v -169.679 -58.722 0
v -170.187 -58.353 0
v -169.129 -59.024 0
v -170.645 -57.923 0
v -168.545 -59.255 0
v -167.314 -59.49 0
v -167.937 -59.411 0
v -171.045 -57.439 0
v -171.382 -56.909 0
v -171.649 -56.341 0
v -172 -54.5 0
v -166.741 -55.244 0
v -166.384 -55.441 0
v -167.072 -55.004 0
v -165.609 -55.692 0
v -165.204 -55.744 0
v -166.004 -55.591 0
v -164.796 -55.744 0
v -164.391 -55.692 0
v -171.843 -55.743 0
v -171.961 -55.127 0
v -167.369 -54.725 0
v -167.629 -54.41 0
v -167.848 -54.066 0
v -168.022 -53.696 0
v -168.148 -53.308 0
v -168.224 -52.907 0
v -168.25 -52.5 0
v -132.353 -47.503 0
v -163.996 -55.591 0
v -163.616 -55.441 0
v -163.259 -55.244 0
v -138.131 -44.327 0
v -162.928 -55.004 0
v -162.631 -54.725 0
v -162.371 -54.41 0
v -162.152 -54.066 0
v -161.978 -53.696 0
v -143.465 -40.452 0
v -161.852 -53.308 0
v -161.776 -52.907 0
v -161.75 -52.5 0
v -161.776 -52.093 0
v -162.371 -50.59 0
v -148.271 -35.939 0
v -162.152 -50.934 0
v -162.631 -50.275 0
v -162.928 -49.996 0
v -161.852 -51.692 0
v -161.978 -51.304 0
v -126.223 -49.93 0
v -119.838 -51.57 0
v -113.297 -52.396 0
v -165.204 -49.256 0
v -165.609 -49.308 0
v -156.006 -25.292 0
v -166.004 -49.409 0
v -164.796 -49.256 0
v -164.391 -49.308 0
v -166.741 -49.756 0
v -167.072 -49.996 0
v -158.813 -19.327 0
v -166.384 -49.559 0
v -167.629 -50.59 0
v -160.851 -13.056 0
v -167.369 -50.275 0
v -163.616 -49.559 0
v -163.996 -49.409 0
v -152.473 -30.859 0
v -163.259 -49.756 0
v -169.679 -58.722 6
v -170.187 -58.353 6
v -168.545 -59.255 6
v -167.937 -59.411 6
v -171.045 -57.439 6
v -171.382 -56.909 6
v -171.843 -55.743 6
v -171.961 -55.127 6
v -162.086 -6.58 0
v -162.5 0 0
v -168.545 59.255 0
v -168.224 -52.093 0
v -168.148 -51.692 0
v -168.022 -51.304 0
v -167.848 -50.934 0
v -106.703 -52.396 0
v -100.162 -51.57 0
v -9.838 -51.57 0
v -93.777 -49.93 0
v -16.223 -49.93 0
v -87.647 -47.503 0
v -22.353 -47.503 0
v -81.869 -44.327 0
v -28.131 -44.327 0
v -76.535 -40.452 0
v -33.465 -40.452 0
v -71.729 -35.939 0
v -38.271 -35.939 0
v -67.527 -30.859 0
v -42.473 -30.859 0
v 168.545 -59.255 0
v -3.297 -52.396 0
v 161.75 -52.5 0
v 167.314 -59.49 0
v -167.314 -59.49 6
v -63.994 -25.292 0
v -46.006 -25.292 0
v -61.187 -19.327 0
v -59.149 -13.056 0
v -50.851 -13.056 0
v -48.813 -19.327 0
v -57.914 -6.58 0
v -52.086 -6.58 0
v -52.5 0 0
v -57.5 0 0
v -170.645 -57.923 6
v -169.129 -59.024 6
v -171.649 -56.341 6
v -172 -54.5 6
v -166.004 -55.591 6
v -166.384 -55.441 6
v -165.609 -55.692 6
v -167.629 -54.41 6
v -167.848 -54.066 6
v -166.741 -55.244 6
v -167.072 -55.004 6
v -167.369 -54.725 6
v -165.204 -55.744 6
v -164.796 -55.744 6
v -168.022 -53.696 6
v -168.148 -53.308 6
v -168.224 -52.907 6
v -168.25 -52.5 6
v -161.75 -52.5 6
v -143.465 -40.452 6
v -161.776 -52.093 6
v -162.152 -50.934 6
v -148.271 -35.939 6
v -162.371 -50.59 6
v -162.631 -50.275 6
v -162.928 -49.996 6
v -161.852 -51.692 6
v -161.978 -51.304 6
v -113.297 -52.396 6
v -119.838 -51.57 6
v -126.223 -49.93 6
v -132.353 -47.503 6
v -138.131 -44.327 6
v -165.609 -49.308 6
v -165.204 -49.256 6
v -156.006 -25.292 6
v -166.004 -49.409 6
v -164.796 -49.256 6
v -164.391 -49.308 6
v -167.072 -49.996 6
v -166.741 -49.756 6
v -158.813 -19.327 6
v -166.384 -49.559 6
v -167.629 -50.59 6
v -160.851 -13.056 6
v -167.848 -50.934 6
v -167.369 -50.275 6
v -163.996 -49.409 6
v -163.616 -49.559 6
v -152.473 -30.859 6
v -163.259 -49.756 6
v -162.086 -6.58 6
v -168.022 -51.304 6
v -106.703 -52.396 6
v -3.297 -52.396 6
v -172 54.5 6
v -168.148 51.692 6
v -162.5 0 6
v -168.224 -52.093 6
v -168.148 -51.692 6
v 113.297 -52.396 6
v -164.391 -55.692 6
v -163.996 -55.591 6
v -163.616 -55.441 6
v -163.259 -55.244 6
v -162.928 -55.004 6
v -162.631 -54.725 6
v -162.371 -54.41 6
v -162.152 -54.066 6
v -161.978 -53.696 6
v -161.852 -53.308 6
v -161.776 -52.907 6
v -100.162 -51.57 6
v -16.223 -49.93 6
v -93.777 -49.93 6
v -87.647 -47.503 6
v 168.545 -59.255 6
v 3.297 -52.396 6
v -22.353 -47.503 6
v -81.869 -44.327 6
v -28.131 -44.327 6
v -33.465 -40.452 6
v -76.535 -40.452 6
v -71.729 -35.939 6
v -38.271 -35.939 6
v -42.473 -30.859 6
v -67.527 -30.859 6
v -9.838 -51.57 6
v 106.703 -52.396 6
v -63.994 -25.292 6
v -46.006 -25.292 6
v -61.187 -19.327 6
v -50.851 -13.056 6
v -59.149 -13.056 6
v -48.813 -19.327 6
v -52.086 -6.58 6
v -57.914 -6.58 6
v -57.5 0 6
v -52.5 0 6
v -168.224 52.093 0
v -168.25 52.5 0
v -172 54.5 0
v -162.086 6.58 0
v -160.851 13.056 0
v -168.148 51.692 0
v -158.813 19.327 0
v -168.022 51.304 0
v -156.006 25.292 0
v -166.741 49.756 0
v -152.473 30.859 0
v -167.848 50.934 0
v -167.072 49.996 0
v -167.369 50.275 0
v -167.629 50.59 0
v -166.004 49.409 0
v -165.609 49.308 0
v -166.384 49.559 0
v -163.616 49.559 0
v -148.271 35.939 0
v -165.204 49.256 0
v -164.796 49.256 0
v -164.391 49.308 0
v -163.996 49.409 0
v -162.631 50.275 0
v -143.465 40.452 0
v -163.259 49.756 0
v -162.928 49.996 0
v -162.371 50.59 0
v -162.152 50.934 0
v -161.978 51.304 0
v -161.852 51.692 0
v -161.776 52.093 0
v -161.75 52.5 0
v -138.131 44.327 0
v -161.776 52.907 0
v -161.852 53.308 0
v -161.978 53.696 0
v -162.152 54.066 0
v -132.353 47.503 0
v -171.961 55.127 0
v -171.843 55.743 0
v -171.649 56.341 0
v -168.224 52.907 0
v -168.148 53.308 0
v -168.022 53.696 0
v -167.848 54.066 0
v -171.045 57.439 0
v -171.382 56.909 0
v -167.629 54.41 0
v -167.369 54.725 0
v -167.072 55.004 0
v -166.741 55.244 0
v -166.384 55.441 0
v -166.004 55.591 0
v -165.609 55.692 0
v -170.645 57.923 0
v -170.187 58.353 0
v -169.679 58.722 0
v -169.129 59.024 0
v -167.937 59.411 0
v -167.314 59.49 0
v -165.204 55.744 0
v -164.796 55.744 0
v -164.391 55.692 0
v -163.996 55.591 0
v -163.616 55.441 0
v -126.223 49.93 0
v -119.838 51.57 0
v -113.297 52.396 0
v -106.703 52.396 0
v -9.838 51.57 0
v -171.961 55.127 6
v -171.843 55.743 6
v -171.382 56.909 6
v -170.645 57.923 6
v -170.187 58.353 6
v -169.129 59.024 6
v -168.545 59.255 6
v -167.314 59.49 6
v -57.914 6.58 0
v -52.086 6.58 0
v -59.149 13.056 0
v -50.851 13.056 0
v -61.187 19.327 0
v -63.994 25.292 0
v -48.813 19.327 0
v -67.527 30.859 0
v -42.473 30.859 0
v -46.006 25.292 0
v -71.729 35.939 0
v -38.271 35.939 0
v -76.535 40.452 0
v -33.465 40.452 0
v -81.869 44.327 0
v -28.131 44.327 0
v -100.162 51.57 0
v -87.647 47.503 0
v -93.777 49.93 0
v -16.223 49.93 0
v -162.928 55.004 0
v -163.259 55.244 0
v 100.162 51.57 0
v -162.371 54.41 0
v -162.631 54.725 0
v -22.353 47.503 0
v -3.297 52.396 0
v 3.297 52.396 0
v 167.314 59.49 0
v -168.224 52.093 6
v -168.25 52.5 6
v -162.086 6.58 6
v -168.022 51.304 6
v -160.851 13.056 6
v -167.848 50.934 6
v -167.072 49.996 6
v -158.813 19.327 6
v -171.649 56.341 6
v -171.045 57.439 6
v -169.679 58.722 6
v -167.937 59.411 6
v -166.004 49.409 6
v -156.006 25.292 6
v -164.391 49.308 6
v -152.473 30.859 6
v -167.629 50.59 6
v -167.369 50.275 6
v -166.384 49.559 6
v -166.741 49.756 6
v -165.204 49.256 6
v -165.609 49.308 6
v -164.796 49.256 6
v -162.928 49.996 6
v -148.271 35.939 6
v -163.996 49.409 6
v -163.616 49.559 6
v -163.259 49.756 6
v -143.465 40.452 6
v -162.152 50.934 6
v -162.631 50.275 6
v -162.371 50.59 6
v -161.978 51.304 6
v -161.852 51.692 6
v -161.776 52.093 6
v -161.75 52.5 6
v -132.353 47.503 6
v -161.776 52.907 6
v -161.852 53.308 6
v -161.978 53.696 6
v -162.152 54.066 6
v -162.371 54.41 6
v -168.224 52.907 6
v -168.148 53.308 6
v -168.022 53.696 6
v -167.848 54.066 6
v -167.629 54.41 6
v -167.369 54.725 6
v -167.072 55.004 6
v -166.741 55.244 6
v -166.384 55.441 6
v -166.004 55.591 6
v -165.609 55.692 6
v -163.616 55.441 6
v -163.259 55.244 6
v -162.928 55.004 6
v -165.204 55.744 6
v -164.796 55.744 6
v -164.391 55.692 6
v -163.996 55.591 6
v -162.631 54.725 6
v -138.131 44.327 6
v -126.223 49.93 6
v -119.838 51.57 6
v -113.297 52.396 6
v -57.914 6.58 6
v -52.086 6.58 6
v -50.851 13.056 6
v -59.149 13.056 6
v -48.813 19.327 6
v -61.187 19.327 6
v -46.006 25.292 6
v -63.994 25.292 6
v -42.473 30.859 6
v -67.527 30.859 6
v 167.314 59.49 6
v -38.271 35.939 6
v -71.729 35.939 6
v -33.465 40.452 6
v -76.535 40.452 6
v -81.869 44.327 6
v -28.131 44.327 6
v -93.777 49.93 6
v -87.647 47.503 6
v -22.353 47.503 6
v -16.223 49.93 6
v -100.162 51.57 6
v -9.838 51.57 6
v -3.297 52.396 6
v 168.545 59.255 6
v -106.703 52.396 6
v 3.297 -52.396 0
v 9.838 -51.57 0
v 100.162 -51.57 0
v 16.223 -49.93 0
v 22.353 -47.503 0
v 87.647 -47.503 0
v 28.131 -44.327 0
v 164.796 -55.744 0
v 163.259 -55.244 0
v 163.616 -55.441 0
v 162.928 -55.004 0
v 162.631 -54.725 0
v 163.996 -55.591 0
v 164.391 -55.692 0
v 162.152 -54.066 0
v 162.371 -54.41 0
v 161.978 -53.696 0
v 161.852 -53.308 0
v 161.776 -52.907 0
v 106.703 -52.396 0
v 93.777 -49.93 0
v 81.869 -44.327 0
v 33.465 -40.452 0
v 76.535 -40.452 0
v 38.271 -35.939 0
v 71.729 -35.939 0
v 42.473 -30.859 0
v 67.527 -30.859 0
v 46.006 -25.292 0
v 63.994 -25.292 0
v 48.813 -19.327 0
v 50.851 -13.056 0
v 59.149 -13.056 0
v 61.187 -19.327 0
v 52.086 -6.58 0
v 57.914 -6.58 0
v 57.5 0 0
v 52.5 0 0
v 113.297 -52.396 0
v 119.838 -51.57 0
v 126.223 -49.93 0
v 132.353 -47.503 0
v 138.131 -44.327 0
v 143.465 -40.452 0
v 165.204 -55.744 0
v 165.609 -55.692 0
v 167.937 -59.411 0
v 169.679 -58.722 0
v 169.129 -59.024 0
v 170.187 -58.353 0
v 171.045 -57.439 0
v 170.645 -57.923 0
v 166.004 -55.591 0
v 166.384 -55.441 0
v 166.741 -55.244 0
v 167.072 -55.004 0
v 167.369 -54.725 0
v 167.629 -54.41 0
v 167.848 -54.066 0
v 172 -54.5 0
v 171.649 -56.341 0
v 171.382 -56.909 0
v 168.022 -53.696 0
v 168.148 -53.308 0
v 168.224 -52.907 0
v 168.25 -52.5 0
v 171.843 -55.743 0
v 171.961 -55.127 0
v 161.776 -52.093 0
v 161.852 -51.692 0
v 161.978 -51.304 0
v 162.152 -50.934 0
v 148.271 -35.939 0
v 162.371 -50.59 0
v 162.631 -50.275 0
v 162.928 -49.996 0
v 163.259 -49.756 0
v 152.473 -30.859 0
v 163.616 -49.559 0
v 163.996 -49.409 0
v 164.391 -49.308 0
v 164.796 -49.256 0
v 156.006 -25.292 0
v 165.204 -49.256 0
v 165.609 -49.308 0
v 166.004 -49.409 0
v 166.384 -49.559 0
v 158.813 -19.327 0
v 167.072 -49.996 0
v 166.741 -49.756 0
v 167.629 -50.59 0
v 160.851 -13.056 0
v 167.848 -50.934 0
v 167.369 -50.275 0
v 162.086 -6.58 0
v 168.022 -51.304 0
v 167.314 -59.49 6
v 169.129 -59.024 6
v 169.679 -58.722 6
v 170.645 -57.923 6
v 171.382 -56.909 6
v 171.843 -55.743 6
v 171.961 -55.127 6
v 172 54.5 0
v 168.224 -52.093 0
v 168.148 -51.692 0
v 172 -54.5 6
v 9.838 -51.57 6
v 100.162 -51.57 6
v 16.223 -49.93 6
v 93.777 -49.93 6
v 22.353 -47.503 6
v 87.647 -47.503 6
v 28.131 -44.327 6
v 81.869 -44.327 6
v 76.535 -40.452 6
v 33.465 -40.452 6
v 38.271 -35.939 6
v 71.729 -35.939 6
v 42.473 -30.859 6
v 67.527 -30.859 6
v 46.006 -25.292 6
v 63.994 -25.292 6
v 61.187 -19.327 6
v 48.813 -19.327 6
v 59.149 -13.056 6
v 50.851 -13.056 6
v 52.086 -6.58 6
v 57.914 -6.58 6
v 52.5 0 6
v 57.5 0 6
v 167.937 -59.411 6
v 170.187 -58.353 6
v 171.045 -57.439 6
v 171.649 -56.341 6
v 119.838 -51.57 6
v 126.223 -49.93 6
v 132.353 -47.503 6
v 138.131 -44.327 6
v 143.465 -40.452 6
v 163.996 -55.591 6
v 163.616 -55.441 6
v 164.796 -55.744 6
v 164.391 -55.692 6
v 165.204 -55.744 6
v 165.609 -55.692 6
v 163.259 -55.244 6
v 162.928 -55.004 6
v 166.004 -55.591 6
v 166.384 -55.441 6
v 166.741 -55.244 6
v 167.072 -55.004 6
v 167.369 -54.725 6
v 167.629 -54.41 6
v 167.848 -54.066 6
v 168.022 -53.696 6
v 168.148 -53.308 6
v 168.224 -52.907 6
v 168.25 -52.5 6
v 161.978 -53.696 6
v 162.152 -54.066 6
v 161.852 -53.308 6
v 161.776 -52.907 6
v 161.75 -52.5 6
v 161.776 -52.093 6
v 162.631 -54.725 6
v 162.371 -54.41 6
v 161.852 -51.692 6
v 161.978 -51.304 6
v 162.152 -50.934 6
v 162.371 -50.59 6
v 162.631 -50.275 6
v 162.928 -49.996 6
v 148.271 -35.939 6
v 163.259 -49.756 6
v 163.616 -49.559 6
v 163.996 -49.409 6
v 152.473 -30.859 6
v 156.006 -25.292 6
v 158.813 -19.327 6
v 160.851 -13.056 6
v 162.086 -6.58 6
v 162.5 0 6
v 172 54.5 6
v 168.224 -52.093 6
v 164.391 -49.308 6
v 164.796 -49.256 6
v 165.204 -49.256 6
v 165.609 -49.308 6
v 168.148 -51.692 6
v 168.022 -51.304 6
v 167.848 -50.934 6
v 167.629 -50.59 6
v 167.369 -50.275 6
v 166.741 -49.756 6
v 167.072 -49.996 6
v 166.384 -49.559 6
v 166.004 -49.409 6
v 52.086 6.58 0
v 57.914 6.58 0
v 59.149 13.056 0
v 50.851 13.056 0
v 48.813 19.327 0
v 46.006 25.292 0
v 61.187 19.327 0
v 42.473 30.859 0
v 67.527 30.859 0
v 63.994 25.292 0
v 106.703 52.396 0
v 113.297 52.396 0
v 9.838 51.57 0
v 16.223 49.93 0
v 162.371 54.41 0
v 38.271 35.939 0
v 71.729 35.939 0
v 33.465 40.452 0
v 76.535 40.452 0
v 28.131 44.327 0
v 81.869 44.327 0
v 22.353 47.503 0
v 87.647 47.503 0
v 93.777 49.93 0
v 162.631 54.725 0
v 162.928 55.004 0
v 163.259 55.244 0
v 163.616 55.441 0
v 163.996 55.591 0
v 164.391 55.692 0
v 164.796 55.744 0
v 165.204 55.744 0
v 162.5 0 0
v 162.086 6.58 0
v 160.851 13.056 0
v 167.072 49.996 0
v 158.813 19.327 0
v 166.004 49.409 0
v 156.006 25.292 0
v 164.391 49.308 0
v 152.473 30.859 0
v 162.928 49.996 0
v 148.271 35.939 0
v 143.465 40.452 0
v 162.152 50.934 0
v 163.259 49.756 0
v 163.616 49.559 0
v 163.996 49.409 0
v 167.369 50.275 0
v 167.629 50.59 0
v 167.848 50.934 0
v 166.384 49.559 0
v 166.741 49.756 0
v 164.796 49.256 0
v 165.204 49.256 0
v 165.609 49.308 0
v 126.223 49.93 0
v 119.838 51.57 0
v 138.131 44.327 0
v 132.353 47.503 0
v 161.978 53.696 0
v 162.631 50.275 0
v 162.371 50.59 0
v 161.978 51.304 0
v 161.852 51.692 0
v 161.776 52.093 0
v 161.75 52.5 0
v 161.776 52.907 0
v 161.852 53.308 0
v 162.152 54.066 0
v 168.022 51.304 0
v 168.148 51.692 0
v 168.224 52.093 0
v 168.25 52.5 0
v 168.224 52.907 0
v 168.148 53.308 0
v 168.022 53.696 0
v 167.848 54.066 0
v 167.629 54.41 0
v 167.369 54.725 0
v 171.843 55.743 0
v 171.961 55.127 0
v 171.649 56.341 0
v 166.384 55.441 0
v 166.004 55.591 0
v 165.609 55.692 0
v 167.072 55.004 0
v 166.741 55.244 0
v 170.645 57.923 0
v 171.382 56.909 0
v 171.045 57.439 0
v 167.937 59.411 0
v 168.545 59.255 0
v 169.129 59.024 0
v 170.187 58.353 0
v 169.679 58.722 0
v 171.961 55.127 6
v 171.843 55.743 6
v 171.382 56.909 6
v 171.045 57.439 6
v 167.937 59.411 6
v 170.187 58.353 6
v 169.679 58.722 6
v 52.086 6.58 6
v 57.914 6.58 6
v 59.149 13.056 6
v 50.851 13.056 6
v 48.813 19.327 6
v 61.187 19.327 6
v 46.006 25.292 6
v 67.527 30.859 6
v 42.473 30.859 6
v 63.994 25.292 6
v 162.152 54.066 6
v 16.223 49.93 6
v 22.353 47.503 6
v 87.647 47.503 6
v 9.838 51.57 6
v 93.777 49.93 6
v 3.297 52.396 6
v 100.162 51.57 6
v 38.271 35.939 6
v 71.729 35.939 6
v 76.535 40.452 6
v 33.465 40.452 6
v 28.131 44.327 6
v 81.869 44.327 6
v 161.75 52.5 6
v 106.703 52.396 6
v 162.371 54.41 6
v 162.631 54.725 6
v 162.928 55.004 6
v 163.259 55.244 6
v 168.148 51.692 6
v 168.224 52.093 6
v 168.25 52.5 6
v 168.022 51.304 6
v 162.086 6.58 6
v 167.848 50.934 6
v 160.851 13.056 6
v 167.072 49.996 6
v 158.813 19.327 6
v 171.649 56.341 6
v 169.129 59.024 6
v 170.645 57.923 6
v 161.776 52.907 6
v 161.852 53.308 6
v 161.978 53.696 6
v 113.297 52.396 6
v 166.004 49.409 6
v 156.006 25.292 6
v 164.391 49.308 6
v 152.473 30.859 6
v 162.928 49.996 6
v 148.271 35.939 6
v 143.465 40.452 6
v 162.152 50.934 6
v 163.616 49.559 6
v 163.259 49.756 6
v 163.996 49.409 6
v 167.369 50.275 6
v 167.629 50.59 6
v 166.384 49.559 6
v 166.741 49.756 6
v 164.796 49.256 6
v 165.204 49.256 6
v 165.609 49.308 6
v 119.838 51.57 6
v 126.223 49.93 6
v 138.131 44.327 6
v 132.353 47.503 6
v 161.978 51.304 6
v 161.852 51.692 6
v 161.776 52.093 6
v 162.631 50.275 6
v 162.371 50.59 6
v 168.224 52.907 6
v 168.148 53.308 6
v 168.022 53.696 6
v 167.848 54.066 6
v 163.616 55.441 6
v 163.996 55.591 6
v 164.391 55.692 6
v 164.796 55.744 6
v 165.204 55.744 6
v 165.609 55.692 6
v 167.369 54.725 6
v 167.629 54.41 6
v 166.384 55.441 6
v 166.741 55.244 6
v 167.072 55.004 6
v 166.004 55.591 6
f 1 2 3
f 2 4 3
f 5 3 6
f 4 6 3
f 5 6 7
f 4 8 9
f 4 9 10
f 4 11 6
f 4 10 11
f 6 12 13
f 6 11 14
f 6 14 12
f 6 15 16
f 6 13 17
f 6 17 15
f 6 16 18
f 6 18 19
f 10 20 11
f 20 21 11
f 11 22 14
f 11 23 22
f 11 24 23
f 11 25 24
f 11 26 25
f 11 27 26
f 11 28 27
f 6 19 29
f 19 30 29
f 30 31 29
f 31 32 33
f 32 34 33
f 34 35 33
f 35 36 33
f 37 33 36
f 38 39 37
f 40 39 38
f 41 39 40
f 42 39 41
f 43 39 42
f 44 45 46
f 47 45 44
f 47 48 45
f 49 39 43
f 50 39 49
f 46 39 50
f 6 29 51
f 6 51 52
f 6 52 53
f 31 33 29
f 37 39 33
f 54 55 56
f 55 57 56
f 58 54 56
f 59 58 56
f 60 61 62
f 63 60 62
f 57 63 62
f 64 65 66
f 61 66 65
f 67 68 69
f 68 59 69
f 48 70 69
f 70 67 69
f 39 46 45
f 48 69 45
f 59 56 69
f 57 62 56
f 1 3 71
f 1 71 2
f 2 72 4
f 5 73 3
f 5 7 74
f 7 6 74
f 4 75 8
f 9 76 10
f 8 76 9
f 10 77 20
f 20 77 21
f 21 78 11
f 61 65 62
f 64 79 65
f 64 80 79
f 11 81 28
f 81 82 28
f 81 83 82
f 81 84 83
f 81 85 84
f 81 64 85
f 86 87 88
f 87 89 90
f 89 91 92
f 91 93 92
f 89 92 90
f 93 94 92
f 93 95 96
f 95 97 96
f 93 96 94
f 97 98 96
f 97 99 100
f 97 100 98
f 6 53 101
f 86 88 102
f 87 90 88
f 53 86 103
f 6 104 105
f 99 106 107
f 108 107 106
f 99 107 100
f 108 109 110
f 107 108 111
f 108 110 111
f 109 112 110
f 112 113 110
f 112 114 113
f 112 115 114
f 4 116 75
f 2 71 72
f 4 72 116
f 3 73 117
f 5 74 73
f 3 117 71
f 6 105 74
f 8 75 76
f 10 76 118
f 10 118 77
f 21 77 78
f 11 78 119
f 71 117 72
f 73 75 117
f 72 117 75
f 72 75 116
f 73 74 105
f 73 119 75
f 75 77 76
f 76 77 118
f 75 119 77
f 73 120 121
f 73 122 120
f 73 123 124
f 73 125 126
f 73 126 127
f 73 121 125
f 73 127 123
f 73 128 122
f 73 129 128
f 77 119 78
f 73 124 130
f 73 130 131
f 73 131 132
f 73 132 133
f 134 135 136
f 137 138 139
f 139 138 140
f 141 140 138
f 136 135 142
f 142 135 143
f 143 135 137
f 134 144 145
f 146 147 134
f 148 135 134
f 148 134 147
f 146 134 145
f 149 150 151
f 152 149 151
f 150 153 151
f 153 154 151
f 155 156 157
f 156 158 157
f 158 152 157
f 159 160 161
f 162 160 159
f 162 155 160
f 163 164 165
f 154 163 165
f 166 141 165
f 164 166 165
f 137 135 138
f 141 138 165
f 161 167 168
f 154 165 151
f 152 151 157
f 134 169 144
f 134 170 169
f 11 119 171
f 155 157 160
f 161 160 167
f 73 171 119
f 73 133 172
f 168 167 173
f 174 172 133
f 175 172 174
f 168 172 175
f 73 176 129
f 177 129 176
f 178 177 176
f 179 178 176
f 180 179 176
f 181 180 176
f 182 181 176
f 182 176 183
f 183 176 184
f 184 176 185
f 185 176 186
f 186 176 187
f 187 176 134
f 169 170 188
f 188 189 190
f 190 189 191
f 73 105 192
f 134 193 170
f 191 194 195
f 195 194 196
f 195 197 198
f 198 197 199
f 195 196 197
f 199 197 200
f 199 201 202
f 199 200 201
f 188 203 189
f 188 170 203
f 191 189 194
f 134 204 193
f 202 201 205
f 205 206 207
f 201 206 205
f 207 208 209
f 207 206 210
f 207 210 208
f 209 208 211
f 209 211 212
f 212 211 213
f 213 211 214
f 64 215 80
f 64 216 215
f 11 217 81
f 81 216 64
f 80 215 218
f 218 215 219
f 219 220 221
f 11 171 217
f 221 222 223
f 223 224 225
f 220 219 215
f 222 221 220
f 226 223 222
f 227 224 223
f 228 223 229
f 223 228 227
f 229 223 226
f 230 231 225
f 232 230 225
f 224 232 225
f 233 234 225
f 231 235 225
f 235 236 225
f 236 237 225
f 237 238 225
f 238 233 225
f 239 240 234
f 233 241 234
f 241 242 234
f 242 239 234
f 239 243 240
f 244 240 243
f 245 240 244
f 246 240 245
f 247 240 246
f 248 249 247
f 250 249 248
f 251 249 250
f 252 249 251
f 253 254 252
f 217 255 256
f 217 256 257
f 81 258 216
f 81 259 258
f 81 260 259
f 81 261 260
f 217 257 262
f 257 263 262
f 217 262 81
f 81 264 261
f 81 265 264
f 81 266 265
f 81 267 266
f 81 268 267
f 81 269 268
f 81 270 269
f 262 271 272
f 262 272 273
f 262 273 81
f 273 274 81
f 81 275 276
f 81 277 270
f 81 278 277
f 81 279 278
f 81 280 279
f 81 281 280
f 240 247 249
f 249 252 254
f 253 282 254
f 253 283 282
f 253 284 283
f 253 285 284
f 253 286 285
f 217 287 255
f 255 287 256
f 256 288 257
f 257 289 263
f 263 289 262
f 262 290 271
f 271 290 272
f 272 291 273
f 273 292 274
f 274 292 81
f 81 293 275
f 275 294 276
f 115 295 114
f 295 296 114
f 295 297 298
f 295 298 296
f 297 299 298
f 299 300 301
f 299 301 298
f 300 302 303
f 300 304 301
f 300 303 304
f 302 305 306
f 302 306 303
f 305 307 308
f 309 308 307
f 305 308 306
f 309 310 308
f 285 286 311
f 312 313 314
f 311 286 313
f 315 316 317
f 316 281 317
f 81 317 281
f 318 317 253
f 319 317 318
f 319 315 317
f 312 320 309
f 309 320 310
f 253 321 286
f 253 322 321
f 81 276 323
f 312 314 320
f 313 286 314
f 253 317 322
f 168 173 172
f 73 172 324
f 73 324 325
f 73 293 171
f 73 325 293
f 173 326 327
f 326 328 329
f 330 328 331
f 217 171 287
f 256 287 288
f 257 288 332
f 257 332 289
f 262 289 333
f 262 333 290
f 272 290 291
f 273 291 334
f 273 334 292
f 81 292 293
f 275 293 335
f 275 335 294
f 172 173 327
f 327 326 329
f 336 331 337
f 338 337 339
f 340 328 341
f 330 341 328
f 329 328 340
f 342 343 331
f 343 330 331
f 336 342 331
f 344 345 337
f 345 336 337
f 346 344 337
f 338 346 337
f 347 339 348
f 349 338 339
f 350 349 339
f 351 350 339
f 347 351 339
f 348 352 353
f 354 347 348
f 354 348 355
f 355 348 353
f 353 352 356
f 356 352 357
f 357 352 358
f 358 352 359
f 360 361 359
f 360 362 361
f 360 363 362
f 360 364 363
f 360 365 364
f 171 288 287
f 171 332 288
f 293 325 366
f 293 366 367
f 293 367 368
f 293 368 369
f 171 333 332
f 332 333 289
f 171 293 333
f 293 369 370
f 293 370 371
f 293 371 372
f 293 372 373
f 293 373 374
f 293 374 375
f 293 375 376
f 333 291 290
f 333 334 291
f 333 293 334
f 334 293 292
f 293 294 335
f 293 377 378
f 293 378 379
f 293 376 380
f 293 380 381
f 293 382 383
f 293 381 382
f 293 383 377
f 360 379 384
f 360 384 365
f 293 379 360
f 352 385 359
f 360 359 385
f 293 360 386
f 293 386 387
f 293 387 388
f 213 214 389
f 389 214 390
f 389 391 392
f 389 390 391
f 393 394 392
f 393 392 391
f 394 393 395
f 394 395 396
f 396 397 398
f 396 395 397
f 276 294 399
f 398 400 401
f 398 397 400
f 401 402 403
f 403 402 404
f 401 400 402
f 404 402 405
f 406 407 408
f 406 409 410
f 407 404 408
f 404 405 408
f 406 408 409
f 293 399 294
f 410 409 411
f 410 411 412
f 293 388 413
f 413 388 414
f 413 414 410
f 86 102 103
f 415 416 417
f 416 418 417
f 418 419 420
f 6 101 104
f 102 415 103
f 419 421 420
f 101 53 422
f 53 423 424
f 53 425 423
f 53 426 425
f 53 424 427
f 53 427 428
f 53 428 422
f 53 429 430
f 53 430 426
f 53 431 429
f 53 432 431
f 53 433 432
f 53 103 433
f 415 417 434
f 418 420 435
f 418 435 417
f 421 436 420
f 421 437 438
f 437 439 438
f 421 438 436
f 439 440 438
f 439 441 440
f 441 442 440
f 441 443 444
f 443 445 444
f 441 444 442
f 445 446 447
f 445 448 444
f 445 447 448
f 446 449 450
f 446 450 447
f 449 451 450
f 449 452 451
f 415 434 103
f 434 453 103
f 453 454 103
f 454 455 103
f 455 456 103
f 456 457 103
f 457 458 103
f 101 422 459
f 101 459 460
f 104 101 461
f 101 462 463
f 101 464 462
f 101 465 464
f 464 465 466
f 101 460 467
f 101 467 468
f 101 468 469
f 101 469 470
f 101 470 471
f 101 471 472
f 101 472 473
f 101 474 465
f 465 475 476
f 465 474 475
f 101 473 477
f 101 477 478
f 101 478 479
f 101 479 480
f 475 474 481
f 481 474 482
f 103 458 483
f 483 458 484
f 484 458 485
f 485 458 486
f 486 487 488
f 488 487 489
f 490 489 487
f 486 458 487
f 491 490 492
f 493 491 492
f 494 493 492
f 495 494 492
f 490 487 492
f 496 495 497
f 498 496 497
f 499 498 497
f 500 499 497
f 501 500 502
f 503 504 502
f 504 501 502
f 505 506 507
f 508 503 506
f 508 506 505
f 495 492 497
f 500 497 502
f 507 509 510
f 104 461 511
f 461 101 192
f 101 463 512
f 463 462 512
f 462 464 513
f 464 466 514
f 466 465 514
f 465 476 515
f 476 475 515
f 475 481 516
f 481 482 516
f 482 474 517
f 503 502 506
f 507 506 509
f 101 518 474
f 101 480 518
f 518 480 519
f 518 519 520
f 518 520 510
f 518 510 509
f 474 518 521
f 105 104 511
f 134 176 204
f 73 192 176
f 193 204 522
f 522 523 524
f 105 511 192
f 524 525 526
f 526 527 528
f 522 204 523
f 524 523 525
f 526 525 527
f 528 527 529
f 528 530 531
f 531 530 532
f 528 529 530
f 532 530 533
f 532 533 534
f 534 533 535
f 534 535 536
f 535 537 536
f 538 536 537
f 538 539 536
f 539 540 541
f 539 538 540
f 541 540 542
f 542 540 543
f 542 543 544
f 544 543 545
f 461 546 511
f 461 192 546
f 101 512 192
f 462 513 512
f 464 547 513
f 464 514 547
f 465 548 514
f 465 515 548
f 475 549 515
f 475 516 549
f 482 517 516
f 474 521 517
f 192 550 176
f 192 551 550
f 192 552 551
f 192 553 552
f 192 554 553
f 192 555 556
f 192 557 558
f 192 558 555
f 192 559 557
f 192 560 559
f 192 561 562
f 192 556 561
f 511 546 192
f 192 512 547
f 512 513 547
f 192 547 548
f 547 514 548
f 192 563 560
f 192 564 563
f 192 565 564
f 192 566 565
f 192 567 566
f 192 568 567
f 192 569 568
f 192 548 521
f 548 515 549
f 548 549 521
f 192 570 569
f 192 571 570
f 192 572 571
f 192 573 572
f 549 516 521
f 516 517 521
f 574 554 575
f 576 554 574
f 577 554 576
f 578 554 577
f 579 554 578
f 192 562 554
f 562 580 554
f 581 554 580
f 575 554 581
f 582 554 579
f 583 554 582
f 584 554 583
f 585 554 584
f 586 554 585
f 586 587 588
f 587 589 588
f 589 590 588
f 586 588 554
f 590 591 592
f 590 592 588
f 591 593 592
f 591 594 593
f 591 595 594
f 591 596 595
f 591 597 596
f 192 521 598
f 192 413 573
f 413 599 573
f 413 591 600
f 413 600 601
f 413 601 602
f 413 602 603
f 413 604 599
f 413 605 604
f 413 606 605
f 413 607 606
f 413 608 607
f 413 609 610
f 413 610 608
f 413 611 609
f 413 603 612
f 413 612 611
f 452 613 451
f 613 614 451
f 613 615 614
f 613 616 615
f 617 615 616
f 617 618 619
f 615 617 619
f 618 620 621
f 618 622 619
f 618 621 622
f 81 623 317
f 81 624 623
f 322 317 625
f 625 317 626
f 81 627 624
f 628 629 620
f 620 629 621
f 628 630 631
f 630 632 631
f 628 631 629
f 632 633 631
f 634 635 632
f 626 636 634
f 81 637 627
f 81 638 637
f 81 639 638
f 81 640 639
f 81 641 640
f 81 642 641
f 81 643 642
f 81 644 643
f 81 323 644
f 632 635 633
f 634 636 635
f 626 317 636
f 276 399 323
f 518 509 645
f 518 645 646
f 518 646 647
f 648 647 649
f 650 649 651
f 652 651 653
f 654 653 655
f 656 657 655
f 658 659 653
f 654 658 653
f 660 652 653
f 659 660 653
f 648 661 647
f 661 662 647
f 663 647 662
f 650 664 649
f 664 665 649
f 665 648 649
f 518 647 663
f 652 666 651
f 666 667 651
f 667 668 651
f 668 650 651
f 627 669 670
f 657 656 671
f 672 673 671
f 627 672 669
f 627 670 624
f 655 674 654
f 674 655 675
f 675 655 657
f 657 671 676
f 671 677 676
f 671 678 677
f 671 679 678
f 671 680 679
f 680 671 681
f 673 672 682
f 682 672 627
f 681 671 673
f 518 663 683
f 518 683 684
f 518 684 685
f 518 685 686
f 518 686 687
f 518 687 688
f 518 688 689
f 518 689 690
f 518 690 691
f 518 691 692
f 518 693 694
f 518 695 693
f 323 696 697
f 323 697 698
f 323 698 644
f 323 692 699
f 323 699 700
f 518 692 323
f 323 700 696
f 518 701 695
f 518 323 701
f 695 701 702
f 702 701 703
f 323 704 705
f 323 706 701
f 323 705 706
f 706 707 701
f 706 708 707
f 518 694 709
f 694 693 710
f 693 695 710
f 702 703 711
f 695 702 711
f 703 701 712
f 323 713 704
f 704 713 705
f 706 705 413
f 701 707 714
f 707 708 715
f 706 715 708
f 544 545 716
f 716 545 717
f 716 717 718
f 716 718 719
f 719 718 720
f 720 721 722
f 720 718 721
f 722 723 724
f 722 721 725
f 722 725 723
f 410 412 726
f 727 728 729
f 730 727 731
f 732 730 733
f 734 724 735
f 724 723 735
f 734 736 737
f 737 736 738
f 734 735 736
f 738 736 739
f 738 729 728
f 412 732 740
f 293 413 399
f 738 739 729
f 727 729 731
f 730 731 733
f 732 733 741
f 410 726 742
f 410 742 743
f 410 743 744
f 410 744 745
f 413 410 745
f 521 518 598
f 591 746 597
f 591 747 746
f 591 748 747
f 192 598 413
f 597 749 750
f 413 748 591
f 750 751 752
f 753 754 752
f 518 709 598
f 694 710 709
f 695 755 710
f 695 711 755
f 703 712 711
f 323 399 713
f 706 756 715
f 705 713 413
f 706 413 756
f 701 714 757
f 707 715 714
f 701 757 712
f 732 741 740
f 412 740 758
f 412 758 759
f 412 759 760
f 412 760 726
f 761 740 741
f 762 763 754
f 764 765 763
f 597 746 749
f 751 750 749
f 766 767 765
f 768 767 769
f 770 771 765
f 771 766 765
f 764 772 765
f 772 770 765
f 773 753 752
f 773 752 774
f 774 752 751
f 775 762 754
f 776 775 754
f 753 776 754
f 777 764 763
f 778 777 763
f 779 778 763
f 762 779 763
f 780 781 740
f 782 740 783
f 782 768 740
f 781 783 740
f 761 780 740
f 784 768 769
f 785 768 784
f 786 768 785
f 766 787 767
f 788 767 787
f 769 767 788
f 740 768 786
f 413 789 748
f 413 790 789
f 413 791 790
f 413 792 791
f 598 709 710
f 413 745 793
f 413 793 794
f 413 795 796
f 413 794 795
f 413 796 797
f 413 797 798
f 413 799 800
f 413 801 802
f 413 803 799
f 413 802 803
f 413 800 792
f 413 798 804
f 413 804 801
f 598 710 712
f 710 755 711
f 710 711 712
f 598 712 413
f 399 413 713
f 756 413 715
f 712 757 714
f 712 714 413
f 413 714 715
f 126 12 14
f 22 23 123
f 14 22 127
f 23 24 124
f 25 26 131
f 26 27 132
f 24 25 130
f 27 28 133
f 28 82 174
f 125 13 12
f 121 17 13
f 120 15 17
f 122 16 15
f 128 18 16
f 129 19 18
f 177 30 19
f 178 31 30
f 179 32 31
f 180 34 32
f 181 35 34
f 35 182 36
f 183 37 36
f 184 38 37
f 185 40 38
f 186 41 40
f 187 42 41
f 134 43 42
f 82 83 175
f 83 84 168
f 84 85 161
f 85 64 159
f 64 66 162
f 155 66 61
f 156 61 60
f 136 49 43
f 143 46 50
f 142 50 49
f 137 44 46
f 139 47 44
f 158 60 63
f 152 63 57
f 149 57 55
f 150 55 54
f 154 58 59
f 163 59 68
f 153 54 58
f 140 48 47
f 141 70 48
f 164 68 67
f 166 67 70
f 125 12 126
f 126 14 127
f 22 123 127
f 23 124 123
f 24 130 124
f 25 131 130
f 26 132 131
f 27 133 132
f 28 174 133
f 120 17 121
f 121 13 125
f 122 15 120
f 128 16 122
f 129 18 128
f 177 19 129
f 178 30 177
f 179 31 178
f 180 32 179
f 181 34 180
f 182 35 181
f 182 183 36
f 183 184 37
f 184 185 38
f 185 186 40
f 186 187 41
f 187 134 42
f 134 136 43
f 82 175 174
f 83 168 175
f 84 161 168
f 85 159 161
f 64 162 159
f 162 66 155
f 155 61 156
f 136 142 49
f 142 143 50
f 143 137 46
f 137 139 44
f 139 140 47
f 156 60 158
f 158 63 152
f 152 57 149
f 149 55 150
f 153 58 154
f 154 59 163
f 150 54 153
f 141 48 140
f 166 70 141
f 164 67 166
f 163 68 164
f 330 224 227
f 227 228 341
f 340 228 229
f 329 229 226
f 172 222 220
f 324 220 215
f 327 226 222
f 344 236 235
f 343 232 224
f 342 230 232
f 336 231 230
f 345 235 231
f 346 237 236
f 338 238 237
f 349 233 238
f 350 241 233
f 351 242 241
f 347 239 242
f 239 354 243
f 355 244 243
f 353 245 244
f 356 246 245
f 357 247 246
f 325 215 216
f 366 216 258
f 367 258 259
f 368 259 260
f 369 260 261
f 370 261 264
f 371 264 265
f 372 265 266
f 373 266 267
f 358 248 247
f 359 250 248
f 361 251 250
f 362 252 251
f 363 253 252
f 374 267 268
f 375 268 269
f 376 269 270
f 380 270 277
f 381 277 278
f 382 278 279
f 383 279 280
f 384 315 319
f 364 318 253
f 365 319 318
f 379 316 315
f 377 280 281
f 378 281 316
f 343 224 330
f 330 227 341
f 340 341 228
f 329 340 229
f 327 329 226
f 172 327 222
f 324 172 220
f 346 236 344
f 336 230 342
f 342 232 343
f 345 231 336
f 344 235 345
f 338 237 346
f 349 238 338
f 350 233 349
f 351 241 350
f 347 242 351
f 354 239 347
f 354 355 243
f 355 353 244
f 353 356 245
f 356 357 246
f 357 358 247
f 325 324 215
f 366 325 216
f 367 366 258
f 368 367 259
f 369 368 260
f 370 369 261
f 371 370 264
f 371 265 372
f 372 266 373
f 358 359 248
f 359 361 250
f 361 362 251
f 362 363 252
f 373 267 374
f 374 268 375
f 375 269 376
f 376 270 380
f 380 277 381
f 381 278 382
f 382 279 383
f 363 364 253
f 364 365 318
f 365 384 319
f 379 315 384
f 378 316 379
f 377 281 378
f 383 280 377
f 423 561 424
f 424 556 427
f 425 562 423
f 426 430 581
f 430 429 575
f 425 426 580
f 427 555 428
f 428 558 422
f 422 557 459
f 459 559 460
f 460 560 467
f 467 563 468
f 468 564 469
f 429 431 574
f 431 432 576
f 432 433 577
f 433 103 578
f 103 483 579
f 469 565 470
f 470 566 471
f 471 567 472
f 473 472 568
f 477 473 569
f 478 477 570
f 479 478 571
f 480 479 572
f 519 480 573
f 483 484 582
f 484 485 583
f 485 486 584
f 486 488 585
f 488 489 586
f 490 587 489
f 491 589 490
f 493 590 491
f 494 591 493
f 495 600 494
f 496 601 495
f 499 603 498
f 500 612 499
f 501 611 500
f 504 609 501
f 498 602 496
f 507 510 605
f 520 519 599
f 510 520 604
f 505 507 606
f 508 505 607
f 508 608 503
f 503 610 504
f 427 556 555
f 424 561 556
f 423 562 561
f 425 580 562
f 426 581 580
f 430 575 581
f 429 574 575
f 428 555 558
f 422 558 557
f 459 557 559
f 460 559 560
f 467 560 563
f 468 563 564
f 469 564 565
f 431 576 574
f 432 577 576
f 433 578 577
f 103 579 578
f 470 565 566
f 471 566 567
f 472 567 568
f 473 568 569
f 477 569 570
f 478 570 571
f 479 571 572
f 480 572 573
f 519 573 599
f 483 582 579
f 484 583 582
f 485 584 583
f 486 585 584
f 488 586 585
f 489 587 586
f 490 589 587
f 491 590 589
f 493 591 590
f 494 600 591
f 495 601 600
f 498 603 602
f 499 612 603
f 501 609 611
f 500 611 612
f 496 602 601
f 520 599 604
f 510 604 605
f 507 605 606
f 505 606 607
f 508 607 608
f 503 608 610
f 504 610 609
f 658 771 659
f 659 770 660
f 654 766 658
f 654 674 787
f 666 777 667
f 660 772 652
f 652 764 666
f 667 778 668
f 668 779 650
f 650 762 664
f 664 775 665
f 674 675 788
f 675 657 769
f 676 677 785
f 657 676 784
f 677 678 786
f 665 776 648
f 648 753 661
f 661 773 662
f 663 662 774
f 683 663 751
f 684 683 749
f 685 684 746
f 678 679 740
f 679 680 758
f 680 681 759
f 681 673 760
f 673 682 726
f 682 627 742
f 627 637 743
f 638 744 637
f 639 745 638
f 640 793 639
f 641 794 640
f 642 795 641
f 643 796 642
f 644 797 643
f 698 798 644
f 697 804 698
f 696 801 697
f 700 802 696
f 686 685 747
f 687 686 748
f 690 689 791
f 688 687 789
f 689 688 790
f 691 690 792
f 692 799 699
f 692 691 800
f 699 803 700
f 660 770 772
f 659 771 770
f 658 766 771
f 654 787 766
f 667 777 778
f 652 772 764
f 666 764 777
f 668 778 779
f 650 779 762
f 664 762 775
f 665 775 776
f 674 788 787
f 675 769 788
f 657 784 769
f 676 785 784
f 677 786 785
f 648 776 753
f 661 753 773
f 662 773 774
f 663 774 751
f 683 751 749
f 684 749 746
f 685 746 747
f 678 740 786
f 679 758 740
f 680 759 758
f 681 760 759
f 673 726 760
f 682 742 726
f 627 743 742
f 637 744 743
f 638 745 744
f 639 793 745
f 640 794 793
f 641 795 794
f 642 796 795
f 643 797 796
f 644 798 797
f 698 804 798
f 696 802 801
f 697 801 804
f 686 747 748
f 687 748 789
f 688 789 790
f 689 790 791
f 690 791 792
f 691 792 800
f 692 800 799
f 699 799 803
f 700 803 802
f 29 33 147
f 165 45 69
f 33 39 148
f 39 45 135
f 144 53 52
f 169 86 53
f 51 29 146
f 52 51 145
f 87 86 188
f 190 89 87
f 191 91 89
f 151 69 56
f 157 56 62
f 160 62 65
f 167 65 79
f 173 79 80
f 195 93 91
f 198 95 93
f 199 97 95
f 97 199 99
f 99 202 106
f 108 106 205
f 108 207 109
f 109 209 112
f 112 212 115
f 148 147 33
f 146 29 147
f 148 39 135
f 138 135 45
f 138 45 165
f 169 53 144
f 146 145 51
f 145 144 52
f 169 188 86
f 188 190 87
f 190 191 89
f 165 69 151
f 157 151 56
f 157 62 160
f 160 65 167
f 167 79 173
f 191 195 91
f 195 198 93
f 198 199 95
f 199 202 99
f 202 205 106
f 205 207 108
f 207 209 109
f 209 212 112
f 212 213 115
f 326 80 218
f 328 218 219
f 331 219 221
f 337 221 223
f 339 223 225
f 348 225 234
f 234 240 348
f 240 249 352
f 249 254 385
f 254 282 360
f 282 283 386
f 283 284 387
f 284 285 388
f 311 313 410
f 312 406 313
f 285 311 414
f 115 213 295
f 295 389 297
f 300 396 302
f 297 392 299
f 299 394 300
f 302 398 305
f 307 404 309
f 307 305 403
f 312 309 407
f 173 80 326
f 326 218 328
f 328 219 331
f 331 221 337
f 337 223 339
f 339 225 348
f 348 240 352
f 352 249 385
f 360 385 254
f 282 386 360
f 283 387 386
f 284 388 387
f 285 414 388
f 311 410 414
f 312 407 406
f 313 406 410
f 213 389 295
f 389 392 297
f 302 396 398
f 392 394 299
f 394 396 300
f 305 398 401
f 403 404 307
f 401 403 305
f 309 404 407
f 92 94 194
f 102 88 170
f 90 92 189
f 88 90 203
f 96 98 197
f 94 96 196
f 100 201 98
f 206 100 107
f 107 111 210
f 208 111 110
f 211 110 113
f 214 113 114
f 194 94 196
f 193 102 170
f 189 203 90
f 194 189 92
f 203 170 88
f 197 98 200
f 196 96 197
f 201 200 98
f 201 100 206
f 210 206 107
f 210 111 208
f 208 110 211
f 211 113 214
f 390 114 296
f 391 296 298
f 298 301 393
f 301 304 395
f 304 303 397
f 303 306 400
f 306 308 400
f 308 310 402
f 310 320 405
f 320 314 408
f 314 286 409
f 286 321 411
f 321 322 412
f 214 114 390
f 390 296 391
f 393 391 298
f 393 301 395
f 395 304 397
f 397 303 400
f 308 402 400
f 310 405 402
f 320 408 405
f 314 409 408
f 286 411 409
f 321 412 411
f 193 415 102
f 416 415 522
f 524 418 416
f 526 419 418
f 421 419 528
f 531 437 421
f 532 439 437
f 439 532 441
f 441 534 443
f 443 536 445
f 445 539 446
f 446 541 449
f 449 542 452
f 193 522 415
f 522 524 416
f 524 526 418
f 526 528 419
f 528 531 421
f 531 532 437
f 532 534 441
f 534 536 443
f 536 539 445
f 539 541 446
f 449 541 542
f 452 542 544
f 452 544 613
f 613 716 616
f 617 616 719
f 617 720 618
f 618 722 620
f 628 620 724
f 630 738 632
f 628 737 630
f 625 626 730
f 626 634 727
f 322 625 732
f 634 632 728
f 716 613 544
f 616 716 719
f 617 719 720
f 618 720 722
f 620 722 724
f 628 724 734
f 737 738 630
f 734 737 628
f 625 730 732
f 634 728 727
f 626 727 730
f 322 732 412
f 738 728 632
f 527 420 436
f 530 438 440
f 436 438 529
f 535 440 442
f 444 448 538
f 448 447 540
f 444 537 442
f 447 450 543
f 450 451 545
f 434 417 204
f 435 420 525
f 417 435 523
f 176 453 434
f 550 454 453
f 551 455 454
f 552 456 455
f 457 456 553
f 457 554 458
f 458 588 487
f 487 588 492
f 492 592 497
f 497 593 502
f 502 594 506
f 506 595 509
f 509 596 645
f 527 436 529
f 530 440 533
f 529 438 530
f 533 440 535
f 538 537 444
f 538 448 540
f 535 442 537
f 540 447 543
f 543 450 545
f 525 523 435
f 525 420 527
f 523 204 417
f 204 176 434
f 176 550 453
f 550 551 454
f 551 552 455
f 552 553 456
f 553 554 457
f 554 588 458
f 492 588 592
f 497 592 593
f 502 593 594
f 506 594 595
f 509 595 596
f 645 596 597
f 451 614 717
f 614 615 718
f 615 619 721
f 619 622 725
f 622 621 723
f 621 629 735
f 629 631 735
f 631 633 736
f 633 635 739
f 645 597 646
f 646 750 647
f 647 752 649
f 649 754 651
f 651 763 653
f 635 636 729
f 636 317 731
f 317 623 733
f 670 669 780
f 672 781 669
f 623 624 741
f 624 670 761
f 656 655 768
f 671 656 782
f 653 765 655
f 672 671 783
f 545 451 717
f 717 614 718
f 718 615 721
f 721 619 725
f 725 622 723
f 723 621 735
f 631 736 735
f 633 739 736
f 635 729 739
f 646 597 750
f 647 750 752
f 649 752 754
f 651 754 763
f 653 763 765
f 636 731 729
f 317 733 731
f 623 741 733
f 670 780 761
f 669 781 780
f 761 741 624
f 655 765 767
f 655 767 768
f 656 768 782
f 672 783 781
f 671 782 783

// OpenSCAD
$fn = 50;

difference() {
	union() {
		hull() {
			translate(v = [-167.0, 54.5, 0]) {
				cylinder(h = 6, r = 5);
			}
			translate(v = [167.0, 54.5, 0]) {
				cylinder(h = 6, r = 5);
			}
			translate(v = [-167.0, -54.5, 0]) {
				cylinder(h = 6, r = 5);
			}
			translate(v = [167.0, -54.5, 0]) {
				cylinder(h = 6, r = 5);
			}
		}
	}
	union() {
		translate(v = [-165.0, -52.5, -100.0]) {
			cylinder(h = 200, r = 3.25);
		}
		translate(v = [-165.0, 52.5, -100.0]) {
			cylinder(h = 200, r = 3.25);
		}
		translate(v = [165.0, -52.5, -100.0]) {
			cylinder(h = 200, r = 3.25);
		}
		translate(v = [165.0, 52.5, -100.0]) {
			cylinder(h = 200, r = 3.25);
		}
		translate(v = [-165.0, -52.5, -100.0]) {
			cylinder(h = 200, r = 1.8);
		}
		translate(v = [-165.0, 52.5, -100.0]) {
			cylinder(h = 200, r = 1.8);
		}
		translate(v = [165.0, -52.5, -100.0]) {
			cylinder(h = 200, r = 1.8);
		}
		translate(v = [165.0, 52.5, -100.0]) {
			cylinder(h = 200, r = 1.8);
		}
		translate(v = [-110.0, 0, 0.0]) {
			cylinder(h = 6, r = 52.5);
		}
		cylinder(h = 6, r = 52.5);
		translate(v = [110.0, 0, 0.0]) {
			cylinder(h = 6, r = 52.5);
		}
	}
}
